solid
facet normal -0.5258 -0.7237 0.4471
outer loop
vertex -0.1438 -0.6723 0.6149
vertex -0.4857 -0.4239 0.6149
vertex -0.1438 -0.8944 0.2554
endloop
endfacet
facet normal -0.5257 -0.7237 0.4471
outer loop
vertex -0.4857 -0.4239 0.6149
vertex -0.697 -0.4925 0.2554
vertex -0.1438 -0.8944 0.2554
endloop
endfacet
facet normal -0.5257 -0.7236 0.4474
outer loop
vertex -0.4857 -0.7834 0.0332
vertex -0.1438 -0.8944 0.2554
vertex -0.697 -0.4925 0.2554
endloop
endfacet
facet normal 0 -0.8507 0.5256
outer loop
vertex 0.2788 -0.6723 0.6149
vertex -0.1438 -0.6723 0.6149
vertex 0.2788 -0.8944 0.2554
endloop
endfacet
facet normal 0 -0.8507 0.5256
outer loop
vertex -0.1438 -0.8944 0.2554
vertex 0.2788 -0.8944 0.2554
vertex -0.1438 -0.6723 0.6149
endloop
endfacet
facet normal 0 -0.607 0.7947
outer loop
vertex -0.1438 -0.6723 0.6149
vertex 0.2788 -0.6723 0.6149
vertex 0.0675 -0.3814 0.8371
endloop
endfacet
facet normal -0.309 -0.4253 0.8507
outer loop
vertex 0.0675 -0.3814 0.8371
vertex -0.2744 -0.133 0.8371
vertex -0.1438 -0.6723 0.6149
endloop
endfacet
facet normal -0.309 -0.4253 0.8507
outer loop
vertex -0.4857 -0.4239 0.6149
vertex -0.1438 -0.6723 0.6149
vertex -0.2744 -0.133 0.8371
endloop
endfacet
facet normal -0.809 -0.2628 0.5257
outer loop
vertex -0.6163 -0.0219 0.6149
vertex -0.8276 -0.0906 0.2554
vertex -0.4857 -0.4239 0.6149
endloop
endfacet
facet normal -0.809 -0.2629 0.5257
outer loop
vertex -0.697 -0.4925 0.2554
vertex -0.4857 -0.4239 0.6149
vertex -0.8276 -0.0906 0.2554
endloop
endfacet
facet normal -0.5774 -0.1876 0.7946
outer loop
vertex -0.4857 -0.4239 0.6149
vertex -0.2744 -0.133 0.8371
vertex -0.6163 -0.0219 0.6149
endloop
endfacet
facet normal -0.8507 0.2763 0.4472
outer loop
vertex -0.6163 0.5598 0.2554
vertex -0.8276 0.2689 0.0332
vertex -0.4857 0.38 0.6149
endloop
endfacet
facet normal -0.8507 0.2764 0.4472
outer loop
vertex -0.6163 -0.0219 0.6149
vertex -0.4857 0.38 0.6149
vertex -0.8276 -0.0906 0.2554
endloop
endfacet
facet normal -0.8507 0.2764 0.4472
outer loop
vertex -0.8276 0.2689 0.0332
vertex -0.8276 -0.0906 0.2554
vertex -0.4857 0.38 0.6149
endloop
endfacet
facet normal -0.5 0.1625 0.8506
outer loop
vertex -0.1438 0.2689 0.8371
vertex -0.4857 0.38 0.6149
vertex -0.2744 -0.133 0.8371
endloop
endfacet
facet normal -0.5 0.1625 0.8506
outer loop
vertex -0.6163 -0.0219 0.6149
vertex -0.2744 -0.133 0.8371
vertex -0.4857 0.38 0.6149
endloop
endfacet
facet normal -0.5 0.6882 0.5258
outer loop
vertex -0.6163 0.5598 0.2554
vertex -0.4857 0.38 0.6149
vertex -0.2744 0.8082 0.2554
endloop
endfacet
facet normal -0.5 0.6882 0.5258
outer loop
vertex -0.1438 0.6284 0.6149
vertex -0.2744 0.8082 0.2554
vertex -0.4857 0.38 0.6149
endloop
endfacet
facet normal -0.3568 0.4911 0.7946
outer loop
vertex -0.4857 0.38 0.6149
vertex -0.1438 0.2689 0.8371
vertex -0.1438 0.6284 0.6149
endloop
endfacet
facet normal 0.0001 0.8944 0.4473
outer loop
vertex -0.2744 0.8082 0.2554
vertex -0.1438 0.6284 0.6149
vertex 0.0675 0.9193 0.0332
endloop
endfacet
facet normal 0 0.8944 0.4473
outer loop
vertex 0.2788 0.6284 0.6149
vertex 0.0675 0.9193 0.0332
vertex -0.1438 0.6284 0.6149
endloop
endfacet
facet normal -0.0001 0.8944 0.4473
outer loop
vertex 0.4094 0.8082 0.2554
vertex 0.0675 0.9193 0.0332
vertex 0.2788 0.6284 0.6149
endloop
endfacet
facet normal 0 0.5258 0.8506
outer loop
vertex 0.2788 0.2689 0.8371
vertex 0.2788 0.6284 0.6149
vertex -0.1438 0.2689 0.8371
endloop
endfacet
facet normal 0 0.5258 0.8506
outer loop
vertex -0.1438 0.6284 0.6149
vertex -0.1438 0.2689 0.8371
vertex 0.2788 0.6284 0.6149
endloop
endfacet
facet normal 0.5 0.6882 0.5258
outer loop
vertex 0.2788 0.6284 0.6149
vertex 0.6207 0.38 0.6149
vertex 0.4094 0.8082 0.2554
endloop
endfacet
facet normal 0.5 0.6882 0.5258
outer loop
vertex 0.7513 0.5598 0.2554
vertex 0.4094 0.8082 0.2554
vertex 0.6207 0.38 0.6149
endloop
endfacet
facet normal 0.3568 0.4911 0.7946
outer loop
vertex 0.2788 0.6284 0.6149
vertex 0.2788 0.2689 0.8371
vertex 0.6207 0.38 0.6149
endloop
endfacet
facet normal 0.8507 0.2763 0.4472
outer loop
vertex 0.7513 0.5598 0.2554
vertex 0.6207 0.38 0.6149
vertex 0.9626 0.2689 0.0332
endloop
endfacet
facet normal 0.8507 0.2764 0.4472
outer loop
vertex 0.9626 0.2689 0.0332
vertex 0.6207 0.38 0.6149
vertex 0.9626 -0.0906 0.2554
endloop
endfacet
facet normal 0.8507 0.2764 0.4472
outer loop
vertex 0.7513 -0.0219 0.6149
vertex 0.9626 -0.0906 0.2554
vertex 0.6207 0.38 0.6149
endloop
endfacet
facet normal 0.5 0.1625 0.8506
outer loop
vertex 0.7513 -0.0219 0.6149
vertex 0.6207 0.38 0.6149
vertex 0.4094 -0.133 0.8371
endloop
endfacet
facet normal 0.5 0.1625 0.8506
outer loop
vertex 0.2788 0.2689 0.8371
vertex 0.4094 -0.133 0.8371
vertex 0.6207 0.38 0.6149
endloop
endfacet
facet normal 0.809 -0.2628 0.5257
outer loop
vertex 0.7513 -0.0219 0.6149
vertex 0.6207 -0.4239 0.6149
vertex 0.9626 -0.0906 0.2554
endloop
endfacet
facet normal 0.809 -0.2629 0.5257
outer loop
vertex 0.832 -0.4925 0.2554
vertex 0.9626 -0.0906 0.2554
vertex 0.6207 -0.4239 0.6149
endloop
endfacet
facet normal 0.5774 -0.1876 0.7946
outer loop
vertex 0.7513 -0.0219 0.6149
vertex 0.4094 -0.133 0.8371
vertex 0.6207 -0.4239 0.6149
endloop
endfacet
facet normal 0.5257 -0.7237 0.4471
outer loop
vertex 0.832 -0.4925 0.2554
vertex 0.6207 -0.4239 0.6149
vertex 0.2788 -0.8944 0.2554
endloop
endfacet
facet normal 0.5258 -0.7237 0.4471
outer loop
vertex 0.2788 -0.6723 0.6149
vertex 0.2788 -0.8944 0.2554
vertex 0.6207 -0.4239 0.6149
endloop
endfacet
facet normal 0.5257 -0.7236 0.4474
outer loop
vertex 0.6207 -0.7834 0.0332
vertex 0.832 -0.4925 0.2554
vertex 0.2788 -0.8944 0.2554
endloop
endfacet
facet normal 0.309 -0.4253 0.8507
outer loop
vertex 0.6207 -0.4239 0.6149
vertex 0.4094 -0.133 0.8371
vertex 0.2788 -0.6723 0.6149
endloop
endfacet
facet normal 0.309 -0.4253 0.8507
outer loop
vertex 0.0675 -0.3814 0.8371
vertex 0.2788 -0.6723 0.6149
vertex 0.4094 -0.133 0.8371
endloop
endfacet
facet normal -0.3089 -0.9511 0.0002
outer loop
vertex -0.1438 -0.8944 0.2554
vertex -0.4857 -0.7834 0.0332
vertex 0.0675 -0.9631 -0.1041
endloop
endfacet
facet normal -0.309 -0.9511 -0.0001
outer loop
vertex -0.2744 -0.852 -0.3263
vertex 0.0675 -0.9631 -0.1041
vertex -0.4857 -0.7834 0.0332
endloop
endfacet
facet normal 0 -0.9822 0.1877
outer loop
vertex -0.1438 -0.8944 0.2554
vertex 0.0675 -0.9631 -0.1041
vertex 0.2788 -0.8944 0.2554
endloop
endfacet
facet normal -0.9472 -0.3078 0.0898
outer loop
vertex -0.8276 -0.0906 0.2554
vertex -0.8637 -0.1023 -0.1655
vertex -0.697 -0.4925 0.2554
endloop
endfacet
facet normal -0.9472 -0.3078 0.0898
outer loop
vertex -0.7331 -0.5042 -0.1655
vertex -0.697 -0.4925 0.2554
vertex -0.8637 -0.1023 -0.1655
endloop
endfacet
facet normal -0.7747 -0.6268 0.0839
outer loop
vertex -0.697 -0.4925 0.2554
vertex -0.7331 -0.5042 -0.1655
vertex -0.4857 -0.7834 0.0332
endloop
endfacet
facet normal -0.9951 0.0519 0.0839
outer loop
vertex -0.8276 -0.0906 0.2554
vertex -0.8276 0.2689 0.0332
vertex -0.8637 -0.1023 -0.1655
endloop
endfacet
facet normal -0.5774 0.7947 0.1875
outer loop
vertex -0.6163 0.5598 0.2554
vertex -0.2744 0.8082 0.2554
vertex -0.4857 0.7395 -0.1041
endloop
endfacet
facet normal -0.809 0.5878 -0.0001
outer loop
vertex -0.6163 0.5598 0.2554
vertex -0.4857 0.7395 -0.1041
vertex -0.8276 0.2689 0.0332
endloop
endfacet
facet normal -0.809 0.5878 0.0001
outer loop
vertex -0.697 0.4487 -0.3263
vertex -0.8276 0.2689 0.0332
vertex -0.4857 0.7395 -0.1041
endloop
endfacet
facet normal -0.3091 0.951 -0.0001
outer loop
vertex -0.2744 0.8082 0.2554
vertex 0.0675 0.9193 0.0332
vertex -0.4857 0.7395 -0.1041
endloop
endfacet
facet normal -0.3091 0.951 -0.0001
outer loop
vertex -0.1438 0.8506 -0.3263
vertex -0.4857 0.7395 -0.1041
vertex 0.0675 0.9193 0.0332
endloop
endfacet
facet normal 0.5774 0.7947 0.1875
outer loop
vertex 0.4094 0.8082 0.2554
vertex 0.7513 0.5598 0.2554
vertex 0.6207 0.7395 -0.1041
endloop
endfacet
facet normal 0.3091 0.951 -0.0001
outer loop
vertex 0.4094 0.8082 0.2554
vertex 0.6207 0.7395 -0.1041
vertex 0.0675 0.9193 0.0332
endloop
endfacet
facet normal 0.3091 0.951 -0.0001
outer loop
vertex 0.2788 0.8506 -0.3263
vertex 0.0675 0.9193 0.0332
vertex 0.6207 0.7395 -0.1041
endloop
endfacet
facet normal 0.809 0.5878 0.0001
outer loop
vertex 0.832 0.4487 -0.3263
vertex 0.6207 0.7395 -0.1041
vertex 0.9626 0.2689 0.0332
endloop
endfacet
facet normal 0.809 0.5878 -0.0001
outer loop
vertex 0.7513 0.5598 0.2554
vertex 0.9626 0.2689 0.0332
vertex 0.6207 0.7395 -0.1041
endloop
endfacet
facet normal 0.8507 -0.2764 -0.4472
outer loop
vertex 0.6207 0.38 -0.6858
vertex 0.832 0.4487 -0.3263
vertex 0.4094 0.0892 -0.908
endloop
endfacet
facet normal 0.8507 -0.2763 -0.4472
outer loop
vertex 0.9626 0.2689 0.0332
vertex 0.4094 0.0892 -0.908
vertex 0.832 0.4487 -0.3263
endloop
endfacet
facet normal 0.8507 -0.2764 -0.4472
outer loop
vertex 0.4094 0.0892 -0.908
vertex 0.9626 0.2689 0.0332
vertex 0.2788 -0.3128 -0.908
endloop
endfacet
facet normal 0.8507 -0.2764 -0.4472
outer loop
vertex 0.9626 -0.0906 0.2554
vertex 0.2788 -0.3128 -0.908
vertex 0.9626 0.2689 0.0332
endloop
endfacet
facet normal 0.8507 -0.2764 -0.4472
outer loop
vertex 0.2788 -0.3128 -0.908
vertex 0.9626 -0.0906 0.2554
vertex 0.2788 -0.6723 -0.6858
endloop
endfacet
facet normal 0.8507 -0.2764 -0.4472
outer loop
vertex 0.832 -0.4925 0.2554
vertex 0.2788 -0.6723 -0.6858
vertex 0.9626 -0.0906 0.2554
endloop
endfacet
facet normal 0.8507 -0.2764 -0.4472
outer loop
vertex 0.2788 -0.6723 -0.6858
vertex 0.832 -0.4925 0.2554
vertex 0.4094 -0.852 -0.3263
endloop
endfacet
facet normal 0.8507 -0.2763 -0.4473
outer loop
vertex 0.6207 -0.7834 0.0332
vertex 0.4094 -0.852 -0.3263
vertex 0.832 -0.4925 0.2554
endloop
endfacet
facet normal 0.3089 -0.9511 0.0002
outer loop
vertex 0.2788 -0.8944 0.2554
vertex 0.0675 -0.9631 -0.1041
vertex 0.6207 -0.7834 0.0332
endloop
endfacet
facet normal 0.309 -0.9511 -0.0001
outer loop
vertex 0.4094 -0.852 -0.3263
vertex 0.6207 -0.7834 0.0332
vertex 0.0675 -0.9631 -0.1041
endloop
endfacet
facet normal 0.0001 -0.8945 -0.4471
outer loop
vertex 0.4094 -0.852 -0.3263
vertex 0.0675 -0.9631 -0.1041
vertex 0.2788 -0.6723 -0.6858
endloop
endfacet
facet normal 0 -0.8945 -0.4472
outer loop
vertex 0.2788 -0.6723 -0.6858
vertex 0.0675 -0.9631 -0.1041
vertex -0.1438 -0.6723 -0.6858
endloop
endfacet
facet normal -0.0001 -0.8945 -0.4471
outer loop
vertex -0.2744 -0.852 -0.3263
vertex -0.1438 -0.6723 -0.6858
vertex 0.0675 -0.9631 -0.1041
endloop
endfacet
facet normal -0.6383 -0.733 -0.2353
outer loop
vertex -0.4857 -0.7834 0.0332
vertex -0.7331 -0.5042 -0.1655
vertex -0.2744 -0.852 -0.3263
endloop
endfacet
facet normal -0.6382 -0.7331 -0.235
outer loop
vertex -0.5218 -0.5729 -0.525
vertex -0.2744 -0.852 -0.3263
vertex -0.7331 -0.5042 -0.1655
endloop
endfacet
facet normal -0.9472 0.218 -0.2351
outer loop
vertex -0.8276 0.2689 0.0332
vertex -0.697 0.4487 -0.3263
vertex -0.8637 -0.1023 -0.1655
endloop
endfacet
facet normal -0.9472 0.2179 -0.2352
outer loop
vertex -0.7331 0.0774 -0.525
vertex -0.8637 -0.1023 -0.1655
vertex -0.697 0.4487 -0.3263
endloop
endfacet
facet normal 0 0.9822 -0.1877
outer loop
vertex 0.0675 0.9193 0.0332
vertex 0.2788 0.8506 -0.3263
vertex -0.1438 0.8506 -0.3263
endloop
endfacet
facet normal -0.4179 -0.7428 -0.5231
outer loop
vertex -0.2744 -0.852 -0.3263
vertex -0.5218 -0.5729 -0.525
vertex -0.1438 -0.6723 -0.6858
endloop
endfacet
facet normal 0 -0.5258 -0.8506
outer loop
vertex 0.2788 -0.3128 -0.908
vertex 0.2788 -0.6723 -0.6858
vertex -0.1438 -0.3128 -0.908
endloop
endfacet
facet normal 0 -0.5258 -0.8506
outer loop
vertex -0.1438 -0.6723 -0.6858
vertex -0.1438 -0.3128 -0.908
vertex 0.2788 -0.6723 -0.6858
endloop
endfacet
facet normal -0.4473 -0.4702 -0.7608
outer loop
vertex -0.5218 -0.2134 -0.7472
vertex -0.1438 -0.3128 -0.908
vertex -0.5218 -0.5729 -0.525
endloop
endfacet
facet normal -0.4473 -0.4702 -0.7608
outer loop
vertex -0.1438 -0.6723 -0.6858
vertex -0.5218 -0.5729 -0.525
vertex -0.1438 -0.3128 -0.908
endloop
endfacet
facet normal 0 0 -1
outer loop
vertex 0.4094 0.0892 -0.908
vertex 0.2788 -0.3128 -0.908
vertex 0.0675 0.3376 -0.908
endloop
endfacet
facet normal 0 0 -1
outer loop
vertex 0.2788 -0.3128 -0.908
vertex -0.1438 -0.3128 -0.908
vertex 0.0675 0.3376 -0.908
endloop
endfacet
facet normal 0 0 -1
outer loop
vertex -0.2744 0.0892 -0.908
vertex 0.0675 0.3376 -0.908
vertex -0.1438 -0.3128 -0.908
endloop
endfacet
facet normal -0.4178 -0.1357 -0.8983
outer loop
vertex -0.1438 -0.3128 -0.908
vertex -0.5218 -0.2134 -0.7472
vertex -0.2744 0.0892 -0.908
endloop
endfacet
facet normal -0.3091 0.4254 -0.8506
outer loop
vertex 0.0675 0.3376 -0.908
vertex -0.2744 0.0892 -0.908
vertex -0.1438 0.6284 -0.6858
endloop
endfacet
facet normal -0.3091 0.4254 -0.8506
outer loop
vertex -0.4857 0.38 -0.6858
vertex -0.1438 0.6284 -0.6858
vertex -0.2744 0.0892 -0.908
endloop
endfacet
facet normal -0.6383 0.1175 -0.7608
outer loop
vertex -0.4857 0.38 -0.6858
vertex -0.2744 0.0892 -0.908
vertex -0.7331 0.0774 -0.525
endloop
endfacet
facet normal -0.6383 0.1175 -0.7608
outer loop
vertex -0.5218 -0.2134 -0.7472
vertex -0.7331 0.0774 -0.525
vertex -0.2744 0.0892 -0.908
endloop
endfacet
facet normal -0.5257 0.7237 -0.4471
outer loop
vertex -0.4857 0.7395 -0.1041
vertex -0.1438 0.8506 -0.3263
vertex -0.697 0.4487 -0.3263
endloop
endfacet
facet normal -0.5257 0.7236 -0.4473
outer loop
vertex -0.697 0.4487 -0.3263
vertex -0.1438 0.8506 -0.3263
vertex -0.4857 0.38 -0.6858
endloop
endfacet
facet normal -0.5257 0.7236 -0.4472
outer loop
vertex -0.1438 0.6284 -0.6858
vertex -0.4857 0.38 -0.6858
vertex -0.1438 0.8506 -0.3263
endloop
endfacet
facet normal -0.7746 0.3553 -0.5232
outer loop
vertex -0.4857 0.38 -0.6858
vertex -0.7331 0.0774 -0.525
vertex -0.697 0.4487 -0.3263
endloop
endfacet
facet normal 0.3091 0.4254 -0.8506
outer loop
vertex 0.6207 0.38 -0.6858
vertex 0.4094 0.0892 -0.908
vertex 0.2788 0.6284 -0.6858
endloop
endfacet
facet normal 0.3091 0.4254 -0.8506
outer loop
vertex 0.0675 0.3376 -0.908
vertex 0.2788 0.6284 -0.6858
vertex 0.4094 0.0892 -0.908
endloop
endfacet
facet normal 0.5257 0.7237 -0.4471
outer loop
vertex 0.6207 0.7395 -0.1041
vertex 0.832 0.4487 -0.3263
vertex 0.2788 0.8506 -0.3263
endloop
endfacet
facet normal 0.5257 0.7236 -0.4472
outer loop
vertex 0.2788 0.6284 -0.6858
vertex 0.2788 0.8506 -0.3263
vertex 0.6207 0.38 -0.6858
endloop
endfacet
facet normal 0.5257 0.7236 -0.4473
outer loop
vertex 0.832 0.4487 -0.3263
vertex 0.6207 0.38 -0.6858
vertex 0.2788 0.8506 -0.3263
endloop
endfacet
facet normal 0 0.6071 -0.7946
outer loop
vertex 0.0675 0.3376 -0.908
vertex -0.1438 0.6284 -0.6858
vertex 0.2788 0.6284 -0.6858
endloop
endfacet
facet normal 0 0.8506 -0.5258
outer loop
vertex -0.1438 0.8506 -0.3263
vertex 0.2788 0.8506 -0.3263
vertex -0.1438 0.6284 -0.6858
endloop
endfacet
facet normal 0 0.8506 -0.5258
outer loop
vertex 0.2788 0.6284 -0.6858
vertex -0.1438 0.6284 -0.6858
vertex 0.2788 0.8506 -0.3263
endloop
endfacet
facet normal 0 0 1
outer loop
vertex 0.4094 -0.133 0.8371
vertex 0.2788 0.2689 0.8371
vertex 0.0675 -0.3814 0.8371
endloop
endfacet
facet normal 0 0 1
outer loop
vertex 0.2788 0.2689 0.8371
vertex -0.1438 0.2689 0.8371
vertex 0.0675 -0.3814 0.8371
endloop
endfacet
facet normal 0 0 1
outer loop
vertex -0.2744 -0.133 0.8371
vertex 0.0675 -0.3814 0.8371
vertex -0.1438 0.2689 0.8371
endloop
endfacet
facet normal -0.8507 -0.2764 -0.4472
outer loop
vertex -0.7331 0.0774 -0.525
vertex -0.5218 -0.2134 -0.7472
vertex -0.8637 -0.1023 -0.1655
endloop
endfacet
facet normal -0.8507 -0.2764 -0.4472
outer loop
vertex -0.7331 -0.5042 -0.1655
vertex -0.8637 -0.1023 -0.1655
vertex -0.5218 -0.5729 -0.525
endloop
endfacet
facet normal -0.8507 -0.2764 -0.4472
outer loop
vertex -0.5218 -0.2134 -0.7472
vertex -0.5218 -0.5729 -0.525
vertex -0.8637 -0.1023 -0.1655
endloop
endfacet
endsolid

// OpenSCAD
polyhedron( points = [[-0.143834635414808, -0.672264459178793, 0.61486771656936], [-0.485739056025514, -0.423856357054558, 0.61486771656936], [-0.61633492401371, -0.0219236047693933, 0.61486771656936], [-0.485739056600958, 0.380009147504042, 0.61486771656936], [-0.143834636345897, 0.628417249597576, 0.61486771656936], [0.278782469125086, 0.62841724959758, 0.61486771656936], [0.620686889758095, 0.380009147504042, 0.61486771656936], [0.751282757782383, -0.0219236047693933, 0.61486771656936], [0.620686890405726, -0.423856357054556, 0.61486771656936], [0.278782470172968, -0.672264459178793, 0.61486771656936], [-0.143834635395834, -0.894447420309142, 0.255368134097123], [-0.69704760880592, -0.492514668026849, 0.255368134088791], [-0.82764347645118, -0.0905819156238766, 0.255368134042204], [-0.616334923556637, 0.559758938552881, 0.255368134074908], [-0.274430503058792, 0.808167040478327, 0.255368134042204], [0.409378338020162, 0.808167040400569, 0.255368134074908], [0.751282758451542, 0.559758938383644, 0.255368134042204], [0.962591311198186, -0.0905819158411695, 0.255368134074908], [0.831995443454123, -0.492514667910899, 0.255368134042204], [0.278782470126251, -0.894447420294557, 0.255368134120723], [0.0674739172741602, -0.963105730537598, -0.104131448542305], [-0.485739056054969, -0.783355939813642, 0.0331851732319141], [-0.827643476407862, 0.268917667232534, 0.0331851731988105], [0.0674739175250701, 0.919258520873615, 0.033185173099918], [0.962591311209136, 0.26891766661725, 0.033185173099918], [0.620686890602442, -0.783355939608937, 0.033185173099918], [-0.274430503347971, -0.852014250338339, -0.326314409084075], [-0.143834635648759, -0.672264458697931, -0.685813991397384], [-0.143834635625389, -0.312764875824546, -0.907996952213318], [-0.274430503286789, 0.0891678765731789, -0.907996952225963], [-0.485739055979343, 0.380009148279599, -0.685813991430488], [-0.697047608692506, 0.448667458840237, -0.326314409124988], [0.409378337661973, -0.852014249415908, -0.326314409411104], [0.278782469703536, -0.672264457746724, -0.685813991608612], [0.278782469709778, -0.312764876914588, -0.907996952504455], [0.409378337507071, 0.0891678752316824, -0.907996952659851], [0.620686890416059, 0.380009146973573, -0.6858139918945], [0.831995443386517, 0.448667457808751, -0.326314409391998], [0.0674739158646823, 0.337575979353753, -0.907996950993016], [-0.143834637198377, 0.628417250425166, -0.685813989554085], [0.278782469884067, 0.628417249151229, -0.685813991987024], [-0.14383463518624, 0.850600209745264, -0.326314409240976], [0.278782470422105, 0.85060021062574, -0.326314409343553], [0.620686890921919, 0.73950873015116, -0.104131448230722], [-0.48573905628624, 0.739508730062169, -0.104131448230722], [0.0674739173900333, -0.381423187003651, 0.83705067717116], [0.409378337381203, -0.133015085250684, 0.837050677403801], [0.278782469361874, 0.268917666965829, 0.837050677403801], [-0.143834636053435, 0.268917666952947, 0.837050677403802], [-0.274430503158039, -0.133015085033569, 0.837050677116835], [-0.733143418707933, -0.504242906870689, -0.165541308412694], [-0.863739286490611, -0.102310154947331, -0.165541308421675], [-0.733143418786988, 0.0774396366255993, -0.525040890701678], [-0.521834866124361, -0.213401635051145, -0.747223851458568], [-0.521834866011082, -0.572901217440678, -0.525040890559911]], faces = [[0, 1, 11, 21, 10], [0, 10, 19, 9], [0, 9, 45], [0, 45, 49, 1], [1, 2, 12, 11], [1, 49, 2], [2, 3, 13, 22, 12], [2, 49, 48, 3], [3, 4, 14, 13], [3, 48, 4], [4, 5, 15, 23, 14], [4, 48, 47, 5], [5, 6, 16, 15], [5, 47, 6], [6, 7, 17, 24, 16], [6, 47, 46, 7], [7, 8, 18, 17], [7, 46, 8], [8, 9, 19, 25, 18], [8, 46, 45, 9], [10, 21, 26, 20], [10, 20, 19], [11, 12, 51, 50], [11, 50, 21], [12, 22, 51], [13, 14, 44], [13, 44, 31, 22], [14, 23, 41, 44], [15, 16, 43], [15, 43, 42, 23], [16, 24, 37, 43], [17, 18, 25, 32, 33, 34, 35, 36, 37, 24], [19, 20, 32, 25], [20, 26, 27, 33, 32], [21, 50, 54, 26], [22, 31, 52, 51], [23, 42, 41], [26, 54, 27], [27, 28, 34, 33], [27, 54, 53, 28], [28, 29, 38, 35, 34], [28, 53, 29], [29, 30, 39, 38], [29, 53, 52, 30], [30, 31, 44, 41, 39], [30, 52, 31], [35, 38, 40, 36], [36, 40, 42, 43, 37], [38, 39, 40], [39, 41, 42, 40], [45, 46, 47, 48, 49], [50, 51, 52, 53, 54]]);
